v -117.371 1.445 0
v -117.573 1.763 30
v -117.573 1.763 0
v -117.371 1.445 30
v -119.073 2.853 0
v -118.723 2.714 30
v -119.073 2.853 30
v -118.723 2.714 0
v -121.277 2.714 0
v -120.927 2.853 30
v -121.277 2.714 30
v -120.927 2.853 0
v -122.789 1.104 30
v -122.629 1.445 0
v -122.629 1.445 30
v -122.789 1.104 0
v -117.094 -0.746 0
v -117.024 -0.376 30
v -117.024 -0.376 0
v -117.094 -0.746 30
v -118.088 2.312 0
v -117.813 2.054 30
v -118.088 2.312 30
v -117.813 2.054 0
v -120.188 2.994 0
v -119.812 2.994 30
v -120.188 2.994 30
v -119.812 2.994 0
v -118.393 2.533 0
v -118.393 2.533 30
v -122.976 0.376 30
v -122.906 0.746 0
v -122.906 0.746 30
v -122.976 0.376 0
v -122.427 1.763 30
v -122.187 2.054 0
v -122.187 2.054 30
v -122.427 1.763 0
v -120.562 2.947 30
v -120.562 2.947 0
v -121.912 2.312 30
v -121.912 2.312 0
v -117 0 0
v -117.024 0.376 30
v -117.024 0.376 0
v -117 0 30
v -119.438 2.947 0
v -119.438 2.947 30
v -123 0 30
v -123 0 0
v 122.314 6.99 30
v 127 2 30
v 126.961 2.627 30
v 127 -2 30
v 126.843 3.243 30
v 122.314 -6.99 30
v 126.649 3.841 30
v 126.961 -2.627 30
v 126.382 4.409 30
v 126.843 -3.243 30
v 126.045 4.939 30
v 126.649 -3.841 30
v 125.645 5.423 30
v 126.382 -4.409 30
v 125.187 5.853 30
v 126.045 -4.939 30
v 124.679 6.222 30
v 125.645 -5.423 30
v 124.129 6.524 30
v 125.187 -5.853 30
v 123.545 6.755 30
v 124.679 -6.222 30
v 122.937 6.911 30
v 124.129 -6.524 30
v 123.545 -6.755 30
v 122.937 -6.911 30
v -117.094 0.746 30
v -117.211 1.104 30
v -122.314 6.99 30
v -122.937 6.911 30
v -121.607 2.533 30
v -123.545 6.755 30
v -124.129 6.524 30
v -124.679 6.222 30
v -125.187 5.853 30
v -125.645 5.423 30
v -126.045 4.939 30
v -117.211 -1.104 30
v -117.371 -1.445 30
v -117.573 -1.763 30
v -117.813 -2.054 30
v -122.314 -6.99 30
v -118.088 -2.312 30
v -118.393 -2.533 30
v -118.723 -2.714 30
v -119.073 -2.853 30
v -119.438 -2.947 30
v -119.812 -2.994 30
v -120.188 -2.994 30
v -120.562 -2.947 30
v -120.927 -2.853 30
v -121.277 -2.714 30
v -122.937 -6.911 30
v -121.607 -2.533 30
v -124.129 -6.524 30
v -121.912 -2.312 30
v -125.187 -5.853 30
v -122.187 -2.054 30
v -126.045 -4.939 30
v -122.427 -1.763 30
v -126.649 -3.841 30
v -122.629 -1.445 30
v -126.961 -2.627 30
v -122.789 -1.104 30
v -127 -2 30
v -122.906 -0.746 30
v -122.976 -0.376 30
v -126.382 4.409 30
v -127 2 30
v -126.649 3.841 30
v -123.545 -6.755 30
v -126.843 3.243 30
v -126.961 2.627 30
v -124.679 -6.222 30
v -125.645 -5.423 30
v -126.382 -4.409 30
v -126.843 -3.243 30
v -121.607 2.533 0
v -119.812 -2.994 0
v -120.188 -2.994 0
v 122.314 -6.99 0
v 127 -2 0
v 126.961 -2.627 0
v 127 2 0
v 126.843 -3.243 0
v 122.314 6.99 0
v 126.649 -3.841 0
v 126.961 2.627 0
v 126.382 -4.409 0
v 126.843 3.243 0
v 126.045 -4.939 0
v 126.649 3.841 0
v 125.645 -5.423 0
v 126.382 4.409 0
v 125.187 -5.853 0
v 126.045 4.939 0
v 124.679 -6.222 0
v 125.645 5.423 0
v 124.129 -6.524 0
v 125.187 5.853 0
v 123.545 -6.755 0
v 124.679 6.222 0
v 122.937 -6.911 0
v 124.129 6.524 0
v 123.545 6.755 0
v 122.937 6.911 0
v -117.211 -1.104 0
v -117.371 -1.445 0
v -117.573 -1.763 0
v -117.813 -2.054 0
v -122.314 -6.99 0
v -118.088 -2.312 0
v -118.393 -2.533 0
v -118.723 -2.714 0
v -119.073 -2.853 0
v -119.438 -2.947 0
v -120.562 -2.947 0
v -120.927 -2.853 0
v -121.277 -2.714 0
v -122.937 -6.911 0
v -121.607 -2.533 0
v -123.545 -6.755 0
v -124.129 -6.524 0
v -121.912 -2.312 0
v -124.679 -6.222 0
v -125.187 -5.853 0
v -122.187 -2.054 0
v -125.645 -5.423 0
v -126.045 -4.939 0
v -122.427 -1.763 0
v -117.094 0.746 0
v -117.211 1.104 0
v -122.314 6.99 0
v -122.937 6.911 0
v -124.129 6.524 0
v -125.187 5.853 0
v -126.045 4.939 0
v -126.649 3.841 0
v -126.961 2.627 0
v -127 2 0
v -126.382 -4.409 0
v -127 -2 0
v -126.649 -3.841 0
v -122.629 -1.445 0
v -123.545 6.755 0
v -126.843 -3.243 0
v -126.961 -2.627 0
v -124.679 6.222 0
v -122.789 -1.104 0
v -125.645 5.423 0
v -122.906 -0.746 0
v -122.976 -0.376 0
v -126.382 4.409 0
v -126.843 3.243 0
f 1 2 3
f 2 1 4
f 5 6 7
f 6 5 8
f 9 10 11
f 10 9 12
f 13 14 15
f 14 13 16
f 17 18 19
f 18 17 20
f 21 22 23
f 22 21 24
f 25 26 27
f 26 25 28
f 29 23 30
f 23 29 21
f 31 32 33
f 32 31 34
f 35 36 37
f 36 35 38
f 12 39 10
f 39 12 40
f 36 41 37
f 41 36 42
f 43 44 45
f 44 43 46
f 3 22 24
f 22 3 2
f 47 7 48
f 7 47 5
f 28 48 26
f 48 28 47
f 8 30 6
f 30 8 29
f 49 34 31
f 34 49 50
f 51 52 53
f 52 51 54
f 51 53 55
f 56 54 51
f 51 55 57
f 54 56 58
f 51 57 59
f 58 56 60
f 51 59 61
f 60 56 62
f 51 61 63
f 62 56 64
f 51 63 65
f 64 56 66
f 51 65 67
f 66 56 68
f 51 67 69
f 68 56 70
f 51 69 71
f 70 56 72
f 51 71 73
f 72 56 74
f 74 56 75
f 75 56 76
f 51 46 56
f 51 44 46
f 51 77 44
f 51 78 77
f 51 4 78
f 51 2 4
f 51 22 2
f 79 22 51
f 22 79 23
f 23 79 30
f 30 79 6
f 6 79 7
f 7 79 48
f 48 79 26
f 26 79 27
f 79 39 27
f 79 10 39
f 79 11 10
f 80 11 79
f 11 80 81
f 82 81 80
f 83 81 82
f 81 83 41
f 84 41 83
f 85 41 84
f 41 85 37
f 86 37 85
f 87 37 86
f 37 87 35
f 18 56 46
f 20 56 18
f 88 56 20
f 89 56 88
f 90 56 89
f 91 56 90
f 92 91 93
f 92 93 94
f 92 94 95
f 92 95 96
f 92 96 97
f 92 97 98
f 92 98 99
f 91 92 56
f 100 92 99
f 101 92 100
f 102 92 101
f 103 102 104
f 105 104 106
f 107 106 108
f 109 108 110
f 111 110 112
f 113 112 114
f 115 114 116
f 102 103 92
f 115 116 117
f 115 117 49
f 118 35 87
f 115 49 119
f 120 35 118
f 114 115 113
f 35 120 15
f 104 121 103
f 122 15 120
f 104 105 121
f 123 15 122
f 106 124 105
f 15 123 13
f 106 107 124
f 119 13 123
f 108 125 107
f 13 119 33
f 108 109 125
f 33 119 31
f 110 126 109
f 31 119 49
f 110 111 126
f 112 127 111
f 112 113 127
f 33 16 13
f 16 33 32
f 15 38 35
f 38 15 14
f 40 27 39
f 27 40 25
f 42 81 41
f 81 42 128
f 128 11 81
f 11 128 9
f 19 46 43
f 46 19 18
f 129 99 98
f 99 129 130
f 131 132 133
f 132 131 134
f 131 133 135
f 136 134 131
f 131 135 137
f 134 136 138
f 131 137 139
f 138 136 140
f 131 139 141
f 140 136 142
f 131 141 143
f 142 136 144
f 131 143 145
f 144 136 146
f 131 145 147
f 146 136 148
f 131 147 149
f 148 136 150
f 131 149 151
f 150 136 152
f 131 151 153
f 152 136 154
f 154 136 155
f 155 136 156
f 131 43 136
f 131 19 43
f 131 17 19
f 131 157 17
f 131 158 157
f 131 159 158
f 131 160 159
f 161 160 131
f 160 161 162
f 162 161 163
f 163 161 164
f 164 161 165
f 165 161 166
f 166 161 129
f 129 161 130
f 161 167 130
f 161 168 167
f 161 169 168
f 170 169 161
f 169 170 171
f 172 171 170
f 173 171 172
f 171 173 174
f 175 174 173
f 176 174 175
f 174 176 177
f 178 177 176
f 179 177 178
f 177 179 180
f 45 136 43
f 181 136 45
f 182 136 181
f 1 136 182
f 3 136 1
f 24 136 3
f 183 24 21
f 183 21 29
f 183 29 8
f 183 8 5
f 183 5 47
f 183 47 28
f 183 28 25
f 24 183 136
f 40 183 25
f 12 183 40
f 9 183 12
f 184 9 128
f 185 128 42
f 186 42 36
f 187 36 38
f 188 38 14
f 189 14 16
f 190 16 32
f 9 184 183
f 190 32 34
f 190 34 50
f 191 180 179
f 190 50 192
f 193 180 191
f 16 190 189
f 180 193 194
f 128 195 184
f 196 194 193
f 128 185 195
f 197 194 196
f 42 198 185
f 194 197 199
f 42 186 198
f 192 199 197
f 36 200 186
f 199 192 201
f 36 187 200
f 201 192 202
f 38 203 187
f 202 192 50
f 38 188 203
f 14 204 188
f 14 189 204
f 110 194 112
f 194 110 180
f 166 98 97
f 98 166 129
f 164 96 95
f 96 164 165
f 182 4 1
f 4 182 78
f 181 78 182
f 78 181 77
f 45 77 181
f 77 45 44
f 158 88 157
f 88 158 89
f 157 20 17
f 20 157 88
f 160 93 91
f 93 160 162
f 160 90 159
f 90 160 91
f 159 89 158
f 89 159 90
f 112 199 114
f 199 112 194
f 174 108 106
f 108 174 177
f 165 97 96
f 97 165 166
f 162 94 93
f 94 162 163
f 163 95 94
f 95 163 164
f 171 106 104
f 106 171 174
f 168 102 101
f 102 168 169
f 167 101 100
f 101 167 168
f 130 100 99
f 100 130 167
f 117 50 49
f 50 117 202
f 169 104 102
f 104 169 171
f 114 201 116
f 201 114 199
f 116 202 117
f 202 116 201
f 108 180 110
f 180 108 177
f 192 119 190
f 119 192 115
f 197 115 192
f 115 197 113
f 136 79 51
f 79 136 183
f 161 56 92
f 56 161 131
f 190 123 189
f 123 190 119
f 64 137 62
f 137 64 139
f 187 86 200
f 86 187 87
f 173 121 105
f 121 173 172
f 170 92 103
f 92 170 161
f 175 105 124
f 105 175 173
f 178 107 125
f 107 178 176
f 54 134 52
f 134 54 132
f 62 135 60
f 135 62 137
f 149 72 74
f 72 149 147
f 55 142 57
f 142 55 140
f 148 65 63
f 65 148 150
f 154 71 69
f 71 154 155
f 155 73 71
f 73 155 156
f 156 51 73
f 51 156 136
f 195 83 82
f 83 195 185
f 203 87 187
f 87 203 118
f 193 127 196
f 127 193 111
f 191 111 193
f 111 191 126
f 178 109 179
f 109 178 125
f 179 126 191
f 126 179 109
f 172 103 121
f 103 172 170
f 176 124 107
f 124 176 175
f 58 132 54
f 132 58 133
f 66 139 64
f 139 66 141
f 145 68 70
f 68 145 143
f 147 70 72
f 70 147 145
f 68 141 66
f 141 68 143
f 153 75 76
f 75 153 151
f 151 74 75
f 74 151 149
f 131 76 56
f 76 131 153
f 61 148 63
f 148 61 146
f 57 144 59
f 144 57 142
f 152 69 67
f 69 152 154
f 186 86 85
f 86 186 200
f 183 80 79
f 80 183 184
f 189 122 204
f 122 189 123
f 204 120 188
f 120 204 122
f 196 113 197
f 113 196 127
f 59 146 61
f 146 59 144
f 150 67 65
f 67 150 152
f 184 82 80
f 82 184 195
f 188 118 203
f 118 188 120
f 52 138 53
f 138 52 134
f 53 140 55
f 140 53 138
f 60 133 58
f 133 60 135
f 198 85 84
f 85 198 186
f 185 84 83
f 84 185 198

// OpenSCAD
$fn = 50;


difference() {
	union() {
		hull() {
			translate(v = [-122.0000000000, 2.0000000000, 0]) {
				cylinder(h = 30, r = 5);
			}
			translate(v = [122.0000000000, 2.0000000000, 0]) {
				cylinder(h = 30, r = 5);
			}
			translate(v = [-122.0000000000, -2.0000000000, 0]) {
				cylinder(h = 30, r = 5);
			}
			translate(v = [122.0000000000, -2.0000000000, 0]) {
				cylinder(h = 30, r = 5);
			}
		}
	}
	union() {
		translate(v = [-120.0000000000, 0.0000000000, 0]) {
			cylinder(h = 30, r = 3.0000000000);
		}
		translate(v = [-120.0000000000, 0.0000000000, 0]) {
			cylinder(h = 30, r = 1.5000000000);
		}
		translate(v = [-120.0000000000, 0.0000000000, 0]) {
			cylinder(h = 30, r = 1.5000000000);
		}
		translate(v = [-120.0000000000, 0.0000000000, 0]) {
			cylinder(h = 30, r = 1.5000000000);
		}
	}
}
